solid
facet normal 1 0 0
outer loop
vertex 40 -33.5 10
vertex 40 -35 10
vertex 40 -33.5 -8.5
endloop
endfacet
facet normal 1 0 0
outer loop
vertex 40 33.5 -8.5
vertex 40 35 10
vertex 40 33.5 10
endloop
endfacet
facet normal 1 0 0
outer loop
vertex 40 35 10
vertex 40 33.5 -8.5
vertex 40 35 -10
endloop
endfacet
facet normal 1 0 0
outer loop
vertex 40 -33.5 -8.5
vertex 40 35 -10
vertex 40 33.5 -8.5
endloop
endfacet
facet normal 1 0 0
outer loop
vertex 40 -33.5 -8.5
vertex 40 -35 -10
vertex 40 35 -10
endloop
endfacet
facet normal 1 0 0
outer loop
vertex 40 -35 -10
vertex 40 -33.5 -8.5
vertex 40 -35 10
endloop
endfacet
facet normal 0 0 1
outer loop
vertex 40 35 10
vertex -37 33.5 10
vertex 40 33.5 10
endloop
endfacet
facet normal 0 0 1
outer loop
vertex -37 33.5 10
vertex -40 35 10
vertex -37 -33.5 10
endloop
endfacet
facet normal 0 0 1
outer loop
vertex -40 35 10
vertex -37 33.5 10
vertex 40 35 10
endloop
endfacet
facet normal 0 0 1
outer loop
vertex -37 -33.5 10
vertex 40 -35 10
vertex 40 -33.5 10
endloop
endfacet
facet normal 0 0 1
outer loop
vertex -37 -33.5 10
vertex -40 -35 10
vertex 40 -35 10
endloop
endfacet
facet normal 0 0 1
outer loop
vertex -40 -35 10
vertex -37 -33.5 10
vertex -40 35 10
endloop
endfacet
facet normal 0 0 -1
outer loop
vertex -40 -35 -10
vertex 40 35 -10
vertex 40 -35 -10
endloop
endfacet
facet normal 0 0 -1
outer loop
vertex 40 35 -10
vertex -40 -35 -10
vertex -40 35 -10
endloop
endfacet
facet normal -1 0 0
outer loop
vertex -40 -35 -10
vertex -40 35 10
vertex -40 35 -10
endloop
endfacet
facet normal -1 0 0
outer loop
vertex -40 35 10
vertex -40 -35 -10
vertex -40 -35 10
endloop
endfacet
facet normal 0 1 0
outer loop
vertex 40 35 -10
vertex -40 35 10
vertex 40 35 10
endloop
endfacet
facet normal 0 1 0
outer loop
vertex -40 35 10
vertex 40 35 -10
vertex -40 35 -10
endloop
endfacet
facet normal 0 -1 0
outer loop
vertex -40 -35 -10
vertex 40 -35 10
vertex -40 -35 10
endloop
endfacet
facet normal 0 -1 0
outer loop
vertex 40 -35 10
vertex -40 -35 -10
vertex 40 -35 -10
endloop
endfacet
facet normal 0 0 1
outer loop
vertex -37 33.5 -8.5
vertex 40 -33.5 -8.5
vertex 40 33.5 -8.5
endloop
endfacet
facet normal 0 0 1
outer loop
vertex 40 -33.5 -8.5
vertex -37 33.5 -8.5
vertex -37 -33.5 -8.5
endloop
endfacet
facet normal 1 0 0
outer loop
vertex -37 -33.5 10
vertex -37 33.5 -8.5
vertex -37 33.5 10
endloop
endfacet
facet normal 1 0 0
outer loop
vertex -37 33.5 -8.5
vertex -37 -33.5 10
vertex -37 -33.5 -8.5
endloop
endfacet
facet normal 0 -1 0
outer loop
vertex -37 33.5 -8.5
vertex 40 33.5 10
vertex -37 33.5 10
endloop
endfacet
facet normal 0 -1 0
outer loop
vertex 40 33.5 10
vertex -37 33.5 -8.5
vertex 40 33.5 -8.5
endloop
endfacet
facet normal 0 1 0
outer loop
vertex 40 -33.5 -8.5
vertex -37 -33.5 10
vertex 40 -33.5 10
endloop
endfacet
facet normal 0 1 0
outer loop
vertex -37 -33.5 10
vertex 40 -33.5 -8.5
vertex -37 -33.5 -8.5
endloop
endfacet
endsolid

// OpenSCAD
 // CSG.scad - Basic example of CSG usage

$fn=50;

 
base();

module base() { 
    difference() {
        cube([80, 70, 20], center=true);
        translate([3,0,10])  cube([80, 67, 37], center=true);
    }
} 
